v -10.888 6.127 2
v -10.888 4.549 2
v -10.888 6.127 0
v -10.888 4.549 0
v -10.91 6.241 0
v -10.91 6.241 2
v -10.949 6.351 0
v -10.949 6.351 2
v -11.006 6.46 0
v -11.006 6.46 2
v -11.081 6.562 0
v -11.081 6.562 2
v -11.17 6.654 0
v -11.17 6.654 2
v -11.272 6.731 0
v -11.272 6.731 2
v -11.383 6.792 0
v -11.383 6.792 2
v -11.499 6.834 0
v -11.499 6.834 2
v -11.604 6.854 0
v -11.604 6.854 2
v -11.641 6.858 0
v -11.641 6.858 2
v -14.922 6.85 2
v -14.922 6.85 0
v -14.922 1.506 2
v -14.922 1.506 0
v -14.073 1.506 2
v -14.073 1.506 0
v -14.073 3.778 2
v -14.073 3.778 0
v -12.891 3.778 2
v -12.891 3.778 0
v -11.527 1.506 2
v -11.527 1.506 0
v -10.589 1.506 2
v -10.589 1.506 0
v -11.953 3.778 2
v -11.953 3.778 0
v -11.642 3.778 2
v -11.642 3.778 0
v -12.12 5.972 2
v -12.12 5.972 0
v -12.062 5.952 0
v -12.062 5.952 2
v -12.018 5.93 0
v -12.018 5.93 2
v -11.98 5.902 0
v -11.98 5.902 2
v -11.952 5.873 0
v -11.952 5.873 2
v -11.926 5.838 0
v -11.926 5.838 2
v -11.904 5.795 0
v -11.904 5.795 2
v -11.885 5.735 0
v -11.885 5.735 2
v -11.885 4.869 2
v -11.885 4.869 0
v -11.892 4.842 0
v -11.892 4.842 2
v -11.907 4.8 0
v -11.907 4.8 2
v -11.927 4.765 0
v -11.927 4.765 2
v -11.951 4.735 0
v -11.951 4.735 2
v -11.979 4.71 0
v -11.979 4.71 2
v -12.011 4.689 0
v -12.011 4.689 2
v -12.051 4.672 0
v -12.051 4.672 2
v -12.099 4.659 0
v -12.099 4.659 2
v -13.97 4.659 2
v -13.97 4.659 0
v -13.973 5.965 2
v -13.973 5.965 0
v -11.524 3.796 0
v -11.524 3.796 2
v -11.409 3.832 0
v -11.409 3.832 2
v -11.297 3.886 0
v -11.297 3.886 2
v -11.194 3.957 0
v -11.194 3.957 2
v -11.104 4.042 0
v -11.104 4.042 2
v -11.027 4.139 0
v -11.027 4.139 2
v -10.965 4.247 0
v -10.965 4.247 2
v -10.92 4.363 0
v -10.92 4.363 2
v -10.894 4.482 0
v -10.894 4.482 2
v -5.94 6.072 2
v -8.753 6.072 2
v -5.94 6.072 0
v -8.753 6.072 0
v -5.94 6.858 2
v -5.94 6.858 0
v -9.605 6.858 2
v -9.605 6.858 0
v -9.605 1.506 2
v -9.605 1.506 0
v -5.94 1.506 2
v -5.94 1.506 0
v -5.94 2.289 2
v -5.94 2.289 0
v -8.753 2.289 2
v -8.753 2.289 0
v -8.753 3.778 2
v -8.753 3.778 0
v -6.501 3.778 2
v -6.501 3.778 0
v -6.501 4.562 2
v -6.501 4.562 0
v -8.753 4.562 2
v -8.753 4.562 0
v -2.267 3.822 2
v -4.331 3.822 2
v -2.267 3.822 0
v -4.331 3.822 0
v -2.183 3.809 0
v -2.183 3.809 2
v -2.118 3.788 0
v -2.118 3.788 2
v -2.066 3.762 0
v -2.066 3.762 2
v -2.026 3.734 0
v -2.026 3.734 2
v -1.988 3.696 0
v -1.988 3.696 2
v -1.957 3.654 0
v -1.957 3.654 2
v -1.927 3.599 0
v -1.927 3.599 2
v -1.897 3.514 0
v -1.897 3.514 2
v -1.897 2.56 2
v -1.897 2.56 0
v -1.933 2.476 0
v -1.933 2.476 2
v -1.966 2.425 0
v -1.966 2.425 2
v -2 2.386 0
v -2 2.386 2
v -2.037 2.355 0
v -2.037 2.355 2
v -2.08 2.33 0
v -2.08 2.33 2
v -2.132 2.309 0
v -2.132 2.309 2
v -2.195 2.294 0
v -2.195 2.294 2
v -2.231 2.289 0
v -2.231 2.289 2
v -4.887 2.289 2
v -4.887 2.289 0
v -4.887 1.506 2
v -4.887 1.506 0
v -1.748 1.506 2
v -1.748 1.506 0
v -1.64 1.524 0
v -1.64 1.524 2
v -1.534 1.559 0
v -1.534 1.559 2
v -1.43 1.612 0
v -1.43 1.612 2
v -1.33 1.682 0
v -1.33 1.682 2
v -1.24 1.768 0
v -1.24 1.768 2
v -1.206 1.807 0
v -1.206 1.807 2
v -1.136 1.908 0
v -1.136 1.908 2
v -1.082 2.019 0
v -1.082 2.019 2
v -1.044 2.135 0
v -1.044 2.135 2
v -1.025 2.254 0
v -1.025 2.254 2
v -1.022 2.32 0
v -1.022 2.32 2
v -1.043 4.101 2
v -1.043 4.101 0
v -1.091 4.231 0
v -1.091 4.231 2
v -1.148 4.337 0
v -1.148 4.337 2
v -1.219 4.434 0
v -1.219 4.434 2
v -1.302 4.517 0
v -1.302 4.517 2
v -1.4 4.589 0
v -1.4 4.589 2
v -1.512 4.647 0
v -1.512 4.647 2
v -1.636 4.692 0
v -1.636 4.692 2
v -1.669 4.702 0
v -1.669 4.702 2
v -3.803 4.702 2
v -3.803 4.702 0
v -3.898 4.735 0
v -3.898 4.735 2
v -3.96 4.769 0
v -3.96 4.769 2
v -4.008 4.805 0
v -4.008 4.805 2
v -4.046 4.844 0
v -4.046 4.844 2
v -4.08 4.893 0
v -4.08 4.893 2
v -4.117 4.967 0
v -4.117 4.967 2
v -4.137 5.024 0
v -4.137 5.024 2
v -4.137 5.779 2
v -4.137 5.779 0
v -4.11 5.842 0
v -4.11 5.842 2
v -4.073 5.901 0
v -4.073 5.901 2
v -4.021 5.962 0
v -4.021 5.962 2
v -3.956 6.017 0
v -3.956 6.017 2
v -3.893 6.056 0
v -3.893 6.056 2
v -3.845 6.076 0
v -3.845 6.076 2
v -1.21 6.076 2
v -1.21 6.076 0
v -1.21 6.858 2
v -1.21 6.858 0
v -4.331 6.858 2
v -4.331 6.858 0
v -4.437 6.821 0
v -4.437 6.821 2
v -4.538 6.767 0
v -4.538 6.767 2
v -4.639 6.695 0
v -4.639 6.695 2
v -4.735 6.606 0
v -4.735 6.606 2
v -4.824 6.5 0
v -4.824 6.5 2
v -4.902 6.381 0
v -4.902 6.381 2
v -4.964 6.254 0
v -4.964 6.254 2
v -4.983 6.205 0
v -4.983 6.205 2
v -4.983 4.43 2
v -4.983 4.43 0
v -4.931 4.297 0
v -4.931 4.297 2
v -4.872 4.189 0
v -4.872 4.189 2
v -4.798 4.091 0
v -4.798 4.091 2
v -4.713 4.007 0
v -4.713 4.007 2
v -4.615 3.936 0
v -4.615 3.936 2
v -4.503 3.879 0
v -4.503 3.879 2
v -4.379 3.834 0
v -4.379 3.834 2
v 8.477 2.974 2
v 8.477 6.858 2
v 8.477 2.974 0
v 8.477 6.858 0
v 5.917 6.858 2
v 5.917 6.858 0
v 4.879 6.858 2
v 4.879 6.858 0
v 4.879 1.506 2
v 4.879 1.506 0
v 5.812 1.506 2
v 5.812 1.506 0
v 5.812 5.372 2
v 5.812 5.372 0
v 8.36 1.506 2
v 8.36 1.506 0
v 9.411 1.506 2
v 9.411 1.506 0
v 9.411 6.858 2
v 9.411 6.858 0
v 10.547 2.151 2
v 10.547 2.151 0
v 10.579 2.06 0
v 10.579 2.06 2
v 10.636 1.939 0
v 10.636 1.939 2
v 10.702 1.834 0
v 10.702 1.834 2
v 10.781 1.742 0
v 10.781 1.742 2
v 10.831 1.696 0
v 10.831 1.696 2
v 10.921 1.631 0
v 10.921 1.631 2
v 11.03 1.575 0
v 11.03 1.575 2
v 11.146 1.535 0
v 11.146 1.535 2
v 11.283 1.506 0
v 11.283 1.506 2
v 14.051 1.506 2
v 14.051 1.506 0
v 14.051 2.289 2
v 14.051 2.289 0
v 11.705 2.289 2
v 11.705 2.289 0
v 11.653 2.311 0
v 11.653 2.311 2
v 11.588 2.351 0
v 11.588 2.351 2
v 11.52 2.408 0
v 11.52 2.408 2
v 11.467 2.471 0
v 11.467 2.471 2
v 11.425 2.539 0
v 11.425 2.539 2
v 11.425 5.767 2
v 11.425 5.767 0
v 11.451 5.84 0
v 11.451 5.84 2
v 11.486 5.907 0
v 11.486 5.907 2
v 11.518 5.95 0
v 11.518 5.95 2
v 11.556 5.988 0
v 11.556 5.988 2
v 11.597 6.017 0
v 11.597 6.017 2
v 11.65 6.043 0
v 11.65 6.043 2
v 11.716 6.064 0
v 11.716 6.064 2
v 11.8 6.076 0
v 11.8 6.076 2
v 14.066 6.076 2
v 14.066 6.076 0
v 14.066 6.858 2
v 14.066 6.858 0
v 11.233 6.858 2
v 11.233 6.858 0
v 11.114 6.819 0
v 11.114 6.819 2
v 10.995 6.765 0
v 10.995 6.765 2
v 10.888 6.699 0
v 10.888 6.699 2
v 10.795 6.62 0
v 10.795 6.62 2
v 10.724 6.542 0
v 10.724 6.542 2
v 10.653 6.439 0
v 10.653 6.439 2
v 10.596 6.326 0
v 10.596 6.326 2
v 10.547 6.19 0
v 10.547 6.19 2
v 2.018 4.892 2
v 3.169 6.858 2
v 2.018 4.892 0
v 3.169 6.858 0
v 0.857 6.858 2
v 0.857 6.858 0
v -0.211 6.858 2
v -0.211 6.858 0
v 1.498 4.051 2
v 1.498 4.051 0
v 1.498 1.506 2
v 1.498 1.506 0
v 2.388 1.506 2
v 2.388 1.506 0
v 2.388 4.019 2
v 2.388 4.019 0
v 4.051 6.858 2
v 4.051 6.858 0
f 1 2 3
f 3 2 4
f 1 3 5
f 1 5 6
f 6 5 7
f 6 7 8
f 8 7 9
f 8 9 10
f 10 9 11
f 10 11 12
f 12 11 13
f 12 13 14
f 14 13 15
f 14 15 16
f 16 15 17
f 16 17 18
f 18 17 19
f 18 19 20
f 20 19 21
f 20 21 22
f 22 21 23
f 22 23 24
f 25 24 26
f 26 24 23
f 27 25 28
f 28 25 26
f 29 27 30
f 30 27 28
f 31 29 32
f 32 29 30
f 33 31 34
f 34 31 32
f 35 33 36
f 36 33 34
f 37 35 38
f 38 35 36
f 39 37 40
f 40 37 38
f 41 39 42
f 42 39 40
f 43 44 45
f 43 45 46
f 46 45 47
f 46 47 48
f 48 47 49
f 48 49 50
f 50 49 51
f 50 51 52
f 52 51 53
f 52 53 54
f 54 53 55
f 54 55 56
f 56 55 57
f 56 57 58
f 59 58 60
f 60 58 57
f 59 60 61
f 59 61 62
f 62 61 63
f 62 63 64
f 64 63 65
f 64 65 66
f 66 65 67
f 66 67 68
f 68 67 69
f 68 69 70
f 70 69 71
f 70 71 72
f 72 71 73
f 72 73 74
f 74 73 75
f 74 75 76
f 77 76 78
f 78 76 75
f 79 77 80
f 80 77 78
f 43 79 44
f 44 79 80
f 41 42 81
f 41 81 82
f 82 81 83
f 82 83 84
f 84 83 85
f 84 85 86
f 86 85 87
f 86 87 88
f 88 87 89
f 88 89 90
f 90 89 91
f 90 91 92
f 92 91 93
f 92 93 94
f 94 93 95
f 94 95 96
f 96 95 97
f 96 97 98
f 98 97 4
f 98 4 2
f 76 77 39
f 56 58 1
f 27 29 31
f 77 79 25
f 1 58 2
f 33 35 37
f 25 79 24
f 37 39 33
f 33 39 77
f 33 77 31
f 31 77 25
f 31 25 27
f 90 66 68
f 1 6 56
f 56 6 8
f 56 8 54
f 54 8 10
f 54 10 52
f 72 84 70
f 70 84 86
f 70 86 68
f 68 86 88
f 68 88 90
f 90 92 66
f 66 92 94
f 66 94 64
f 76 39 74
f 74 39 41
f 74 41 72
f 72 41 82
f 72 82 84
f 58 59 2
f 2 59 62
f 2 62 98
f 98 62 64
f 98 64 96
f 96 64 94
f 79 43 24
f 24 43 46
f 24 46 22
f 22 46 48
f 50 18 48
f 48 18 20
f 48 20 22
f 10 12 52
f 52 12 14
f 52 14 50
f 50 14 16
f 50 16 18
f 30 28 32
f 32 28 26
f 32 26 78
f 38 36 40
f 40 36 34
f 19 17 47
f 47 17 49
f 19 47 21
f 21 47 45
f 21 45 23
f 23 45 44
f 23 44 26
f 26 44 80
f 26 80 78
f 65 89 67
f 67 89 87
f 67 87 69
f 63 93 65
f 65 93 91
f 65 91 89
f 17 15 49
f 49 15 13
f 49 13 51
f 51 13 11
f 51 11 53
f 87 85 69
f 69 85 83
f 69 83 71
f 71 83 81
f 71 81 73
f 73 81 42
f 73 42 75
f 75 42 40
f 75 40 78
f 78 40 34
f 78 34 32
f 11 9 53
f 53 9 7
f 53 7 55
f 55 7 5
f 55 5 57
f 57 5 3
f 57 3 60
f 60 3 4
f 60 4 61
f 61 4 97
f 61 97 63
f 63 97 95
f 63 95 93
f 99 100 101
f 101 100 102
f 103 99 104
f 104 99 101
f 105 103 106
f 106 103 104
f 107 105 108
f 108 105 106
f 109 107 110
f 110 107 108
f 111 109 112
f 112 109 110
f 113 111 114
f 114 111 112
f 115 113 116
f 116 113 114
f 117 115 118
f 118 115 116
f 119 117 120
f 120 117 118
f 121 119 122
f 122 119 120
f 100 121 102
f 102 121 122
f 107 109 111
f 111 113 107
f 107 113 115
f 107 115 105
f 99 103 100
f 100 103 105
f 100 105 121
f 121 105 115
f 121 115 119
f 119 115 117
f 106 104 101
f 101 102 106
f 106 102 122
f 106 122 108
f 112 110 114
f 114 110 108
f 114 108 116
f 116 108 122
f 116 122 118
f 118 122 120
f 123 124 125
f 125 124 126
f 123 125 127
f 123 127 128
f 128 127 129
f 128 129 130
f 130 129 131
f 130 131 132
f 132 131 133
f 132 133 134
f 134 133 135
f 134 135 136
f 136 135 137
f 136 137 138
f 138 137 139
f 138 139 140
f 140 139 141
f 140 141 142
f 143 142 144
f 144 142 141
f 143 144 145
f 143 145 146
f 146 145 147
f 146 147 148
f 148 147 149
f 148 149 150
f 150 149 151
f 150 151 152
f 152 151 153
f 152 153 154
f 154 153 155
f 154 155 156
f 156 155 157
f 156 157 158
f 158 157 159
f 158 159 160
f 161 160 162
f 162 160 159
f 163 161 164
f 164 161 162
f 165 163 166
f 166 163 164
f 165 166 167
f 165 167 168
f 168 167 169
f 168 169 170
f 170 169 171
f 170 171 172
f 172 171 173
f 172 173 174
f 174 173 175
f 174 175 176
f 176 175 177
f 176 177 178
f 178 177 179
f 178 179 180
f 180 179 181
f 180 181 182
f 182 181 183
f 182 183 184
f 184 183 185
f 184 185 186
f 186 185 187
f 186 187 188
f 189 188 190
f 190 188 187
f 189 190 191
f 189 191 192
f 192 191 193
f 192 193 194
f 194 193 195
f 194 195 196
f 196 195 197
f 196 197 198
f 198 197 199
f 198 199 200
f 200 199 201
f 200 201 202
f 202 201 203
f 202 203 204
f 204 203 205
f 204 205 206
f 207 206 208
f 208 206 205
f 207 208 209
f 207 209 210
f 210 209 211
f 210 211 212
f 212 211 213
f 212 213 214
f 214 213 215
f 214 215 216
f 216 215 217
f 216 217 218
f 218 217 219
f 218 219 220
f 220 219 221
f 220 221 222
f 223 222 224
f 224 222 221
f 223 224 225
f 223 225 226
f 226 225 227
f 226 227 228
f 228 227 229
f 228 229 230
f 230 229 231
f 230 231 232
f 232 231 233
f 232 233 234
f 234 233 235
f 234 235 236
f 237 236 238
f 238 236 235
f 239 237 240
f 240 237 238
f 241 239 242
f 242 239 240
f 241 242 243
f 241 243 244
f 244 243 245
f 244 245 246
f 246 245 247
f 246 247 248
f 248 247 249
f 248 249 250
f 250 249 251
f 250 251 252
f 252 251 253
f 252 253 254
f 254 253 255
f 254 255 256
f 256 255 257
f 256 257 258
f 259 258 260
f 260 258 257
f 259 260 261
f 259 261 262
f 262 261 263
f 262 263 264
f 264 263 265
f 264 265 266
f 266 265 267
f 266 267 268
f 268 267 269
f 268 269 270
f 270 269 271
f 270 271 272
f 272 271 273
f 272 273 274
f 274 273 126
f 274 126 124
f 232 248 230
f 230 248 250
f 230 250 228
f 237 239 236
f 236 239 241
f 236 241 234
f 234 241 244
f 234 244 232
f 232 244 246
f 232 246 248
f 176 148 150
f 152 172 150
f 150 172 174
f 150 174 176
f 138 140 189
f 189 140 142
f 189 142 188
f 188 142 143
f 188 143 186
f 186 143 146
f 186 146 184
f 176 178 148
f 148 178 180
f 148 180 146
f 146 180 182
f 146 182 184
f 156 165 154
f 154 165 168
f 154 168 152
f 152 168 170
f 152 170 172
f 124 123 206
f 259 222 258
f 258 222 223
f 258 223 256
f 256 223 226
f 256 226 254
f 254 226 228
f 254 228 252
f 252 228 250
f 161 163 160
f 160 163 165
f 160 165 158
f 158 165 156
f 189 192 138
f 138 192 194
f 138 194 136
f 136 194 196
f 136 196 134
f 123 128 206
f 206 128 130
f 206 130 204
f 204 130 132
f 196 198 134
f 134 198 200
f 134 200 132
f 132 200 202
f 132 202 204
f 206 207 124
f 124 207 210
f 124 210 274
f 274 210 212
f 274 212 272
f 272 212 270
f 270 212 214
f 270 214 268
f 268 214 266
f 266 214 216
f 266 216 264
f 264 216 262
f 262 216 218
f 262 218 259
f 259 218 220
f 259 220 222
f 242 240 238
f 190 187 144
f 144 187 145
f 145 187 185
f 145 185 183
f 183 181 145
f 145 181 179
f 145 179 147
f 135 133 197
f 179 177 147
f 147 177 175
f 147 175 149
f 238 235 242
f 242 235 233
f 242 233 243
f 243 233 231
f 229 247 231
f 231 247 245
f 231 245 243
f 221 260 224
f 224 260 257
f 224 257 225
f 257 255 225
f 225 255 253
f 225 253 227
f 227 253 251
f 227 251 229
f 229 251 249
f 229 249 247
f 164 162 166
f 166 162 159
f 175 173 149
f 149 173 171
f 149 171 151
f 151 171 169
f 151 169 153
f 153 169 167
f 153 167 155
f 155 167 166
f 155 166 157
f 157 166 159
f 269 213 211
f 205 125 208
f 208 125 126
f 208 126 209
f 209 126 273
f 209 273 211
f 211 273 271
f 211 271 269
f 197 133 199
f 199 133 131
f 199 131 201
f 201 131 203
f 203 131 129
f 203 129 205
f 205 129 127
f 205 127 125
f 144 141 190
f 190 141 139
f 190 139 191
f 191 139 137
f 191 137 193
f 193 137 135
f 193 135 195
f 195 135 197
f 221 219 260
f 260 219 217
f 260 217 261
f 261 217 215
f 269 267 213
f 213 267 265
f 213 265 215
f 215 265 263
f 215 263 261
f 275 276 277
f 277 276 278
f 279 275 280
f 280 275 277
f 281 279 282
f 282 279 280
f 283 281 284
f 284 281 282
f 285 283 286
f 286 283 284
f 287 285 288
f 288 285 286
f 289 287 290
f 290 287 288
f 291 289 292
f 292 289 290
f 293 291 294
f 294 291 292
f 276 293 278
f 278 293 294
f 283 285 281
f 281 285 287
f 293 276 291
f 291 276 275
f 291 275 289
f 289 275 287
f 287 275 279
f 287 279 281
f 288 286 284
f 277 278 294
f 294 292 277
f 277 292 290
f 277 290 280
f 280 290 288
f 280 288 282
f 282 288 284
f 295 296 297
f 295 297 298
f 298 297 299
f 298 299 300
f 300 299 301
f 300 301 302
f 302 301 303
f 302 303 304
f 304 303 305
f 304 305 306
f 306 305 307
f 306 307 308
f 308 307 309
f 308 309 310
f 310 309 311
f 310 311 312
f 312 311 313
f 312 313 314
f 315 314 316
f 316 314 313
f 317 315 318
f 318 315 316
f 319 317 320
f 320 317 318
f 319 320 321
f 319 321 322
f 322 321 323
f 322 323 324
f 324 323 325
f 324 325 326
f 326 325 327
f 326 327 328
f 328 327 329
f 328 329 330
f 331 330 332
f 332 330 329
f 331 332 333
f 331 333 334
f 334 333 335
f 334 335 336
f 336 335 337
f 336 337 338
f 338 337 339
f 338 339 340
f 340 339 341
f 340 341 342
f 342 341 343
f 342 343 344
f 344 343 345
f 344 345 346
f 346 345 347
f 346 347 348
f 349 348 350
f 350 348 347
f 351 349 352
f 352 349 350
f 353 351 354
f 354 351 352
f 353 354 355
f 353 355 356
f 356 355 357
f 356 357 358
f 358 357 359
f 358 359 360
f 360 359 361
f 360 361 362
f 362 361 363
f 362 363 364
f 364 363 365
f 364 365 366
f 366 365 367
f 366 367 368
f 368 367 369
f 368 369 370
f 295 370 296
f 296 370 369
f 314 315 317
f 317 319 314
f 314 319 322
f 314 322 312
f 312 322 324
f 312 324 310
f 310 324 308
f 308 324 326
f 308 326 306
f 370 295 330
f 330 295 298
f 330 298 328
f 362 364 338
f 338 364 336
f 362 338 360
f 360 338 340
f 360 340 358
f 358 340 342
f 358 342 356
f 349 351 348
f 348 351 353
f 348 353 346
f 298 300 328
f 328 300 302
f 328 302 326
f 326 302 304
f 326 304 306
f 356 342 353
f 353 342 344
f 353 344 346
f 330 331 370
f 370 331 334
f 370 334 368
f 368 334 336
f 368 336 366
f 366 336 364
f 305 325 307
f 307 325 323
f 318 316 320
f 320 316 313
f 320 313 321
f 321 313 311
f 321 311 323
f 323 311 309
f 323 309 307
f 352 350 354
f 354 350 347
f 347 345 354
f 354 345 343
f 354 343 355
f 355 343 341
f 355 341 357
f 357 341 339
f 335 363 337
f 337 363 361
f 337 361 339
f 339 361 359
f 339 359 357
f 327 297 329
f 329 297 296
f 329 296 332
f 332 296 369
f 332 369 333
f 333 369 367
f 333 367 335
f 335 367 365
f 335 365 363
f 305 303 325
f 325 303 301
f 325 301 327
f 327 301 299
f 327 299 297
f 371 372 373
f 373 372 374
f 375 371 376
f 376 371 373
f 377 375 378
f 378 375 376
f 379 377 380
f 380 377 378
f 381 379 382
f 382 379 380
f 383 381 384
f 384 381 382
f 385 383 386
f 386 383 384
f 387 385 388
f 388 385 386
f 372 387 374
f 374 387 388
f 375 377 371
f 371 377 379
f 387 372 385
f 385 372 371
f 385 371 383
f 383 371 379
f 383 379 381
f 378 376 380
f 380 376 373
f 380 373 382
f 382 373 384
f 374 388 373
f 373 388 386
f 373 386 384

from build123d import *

# Parameters (mm, degrees)
BOSS_EXTRUDE8_DEPTH   = 2
BOSS_EXTRUDE8_2_DEPTH = 2
BOSS_EXTRUDE8_3_DEPTH = 2
BOSS_EXTRUDE8_4_DEPTH = 2
BOSS_EXTRUDE8_5_DEPTH = 2
BOSS_EXTRUDE8_6_DEPTH = 2


with BuildPart() as part:
    # Sketch39 → Boss-Extrude8 (new body)
    with BuildSketch(Plane.XY):
        with BuildLine():
            Line((-10.888283658, 4.549273437), (-10.888283658, 6.126987026))
            add(Edge.make_bspline(
                [(-10.888283658, 6.126987026), (-10.908232756, 6.311540114), (-11.094852516, 6.669600397), (-11.456841906, 6.846838223), (-11.641186102, 6.857619555)],
                knots=[0.004357591, 0.004357591, 0.004357591, 0.004357591, 0.500967638, 0.997577686, 0.997577686, 0.997577686, 0.997577686], degree=3))
            Line((-11.641186102, 6.857619555), (-14.922474371, 6.850388867))
            Line((-14.922474371, 6.850388867), (-14.922474371, 1.505742473))
            Line((-14.922474371, 1.505742473), (-14.072776349, 1.505742473))
            Line((-14.072776349, 1.505742473), (-14.072776349, 3.777872176))
            Line((-14.072776349, 3.777872176), (-12.891259134, 3.777872176))
            Line((-12.891259134, 3.777872176), (-11.52653581, 1.505742473))
            Line((-11.52653581, 1.505742473), (-10.588770825, 1.505742473))
            Line((-10.588770825, 1.505742473), (-11.953494149, 3.777872176))
            Line((-11.953494149, 3.777872176), (-11.642084885, 3.777872176))
            add(Edge.make_bspline(
                [(-11.642084885, 3.777872176), (-11.451993433, 3.792046974), (-11.074843016, 3.966339896), (-10.894872856, 4.35631666), (-10.888283658, 4.549273437)],
                knots=[0.002906528, 0.002906528, 0.002906528, 0.002906528, 0.500827012, 0.998747497, 0.998747497, 0.998747497, 0.998747497], degree=3))
        make_face()
        with BuildLine():
            add(Edge.make_bspline(
                [(-11.884951007, 5.735076037), (-11.928592054, 5.922883289), (-12.120490935, 5.97197097)],
                knots=[0, 0, 0, 1, 1, 1], degree=2))
            Line((-12.120490935, 5.97197097), (-13.972776349, 5.964685241))
            Line((-13.972776349, 5.964685241), (-13.969898423, 4.658681327))
            Line((-13.969898423, 4.658681327), (-12.098915788, 4.658681327))
            add(Edge.make_bspline(
                [(-12.098915788, 4.658681327), (-11.921884887, 4.693884027), (-11.884951007, 4.869171619)],
                knots=[0, 0, 0, 1, 1, 1], degree=2))
            Line((-11.884951007, 4.869171619), (-11.884951007, 5.735076037))
        make_face(mode=Mode.SUBTRACT)
    extrude(amount=BOSS_EXTRUDE8_DEPTH)


with BuildPart() as body_2:
    # Sketch39 → Boss-Extrude8 2 (new body)
    with BuildSketch(Plane.XY):
        Polygon((-8.752624131, 6.07197097), (-5.94007284, 6.07197097), (-5.94007284, 6.857625765), (-9.60478091, 6.857625765), (-9.60478091, 1.505742473), (-5.94007284, 1.505742473), (-5.94007284, 2.289085691), (-8.752624131, 2.289085691), (-8.752624131, 3.777872176), (-6.500945529, 3.777872176), (-6.500945529, 4.562436919), (-8.752624131, 4.562436919), align=None)
    extrude(amount=BOSS_EXTRUDE8_2_DEPTH)


with BuildPart() as body_3:
    # Sketch39 → Boss-Extrude8 3 (new body)
    with BuildSketch(Plane.XY):
        with BuildLine():
            Line((-4.331445745, 3.821709693), (-2.267474021, 3.821709693))
            add(Edge.make_bspline(
                [(-2.267474021, 3.821709693), (-2.18188065, 3.81593612), (-2.001029862, 3.760941511), (-1.918852857, 3.596190197), (-1.897178545, 3.514314513)],
                knots=[-0.007665862, -0.007665862, -0.007665862, -0.007665862, 0.511460783, 1.030587427, 1.030587427, 1.030587427, 1.030587427], degree=3))
            Line((-1.897178545, 3.514314513), (-1.897178545, 2.559561474))
            add(Edge.make_bspline(
                [(-1.897178545, 2.559561474), (-1.920997625, 2.488393268), (-1.997915919, 2.347168794), (-2.155599312, 2.295866478), (-2.231249257, 2.289085691)],
                knots=[-0.045302285, -0.045302285, -0.045302285, -0.045302285, 0.483485723, 1.01227373, 1.01227373, 1.01227373, 1.01227373], degree=3))
            Line((-2.231249257, 2.289085691), (-4.88659772, 2.289085691))
            Line((-4.88659772, 2.289085691), (-4.88659772, 1.505742473))
            Line((-4.88659772, 1.505742473), (-1.747765617, 1.505742473))
            add(Edge.make_bspline(
                [(-1.747765617, 1.505742473), (-1.554039499, 1.522473909), (-1.176105355, 1.730633067), (-1.019975744, 2.125993011), (-1.022239558, 2.319749566)],
                knots=[0.003205409, 0.003205409, 0.003205409, 0.003205409, 0.501602705, 1, 1, 1, 1], degree=3))
            Line((-1.022239558, 2.319749566), (-1.043051423, 4.10100641))
            add(Edge.make_bspline(
                [(-1.043051423, 4.10100641), (-1.065619796, 4.176263738), (-1.129917251, 4.327916486), (-1.262718984, 4.49362296), (-1.434645881, 4.620744007), (-1.591738794, 4.681150616), (-1.669091916, 4.701815782)],
                knots=[0.012743608, 0.012743608, 0.012743608, 0.012743608, 0.256640139, 0.500536671, 0.744433202, 0.988329734, 0.988329734, 0.988329734, 0.988329734], degree=3))
            Line((-1.669091916, 4.701815782), (-3.80345691, 4.701815782))
            add(Edge.make_bspline(
                [(-3.80345691, 4.701815782), (-3.881648249, 4.721973704), (-4.038081478, 4.794101762), (-4.114162603, 4.947083549), (-4.136596871, 5.024268339)],
                knots=[-0.032088246, -0.032088246, -0.032088246, -0.032088246, 0.502199739, 1.036487723, 1.036487723, 1.036487723, 1.036487723], degree=3))
            Line((-4.136596871, 5.024268339), (-4.136596871, 5.779216833))
            add(Edge.make_bspline(
                [(-4.136596871, 5.779216833), (-4.09320159, 5.910957545), (-3.975516536, 6.029193296), (-3.844958381, 6.076026335)],
                knots=[-0.048739002, -0.048739002, -0.048739002, -0.048739002, 1.051963254, 1.051963254, 1.051963254, 1.051963254], degree=3))
            Line((-3.844958381, 6.076026335), (-1.209628903, 6.076026335))
            Line((-1.209628903, 6.076026335), (-1.209628903, 6.857625765))
            Line((-1.209628903, 6.857625765), (-4.33068222, 6.857625765))
            add(Edge.make_bspline(
                [(-4.33068222, 6.857625765), (-4.628207422, 6.779563045), (-4.88190688, 6.495297474), (-4.98278942, 6.204715734)],
                knots=[0.011688933, 0.011688933, 0.011688933, 0.011688933, 0.984045744, 0.984045744, 0.984045744, 0.984045744], degree=3))
            Line((-4.98278942, 6.204715734), (-4.98278942, 4.429589182))
            add(Edge.make_bspline(
                [(-4.98278942, 4.429589182), (-4.957928137, 4.351858109), (-4.888451922, 4.195176517), (-4.749030804, 4.026321893), (-4.57111561, 3.899076851), (-4.410501277, 3.840956124), (-4.331445745, 3.821709693)],
                knots=[0.013618493, 0.013618493, 0.013618493, 0.013618493, 0.257585504, 0.501552515, 0.745519526, 0.989486537, 0.989486537, 0.989486537, 0.989486537], degree=3))
        make_face()
    extrude(amount=BOSS_EXTRUDE8_3_DEPTH)


with BuildPart() as body_4:
    # Sketch39 → Boss-Extrude8 4 (new body)
    with BuildSketch(Plane.XY):
        Polygon((8.476971429, 6.857625765), (8.476971429, 2.97350344), (5.917175659, 6.857625765), (4.878705551, 6.857625765), (4.878705551, 1.505742473), (5.812405759, 1.505742473), (5.812405759, 5.371966432), (8.360405772, 1.505742473), (9.410671637, 1.505742473), (9.410671637, 6.857625765), align=None)
    extrude(amount=BOSS_EXTRUDE8_4_DEPTH)


with BuildPart() as body_5:
    # Sketch39 → Boss-Extrude8 5 (new body)
    with BuildSketch(Plane.XY):
        with BuildLine():
            add(Edge.make_bspline(
                [(11.282902439, 1.505742473), (11.19415179, 1.518984982), (11.011088341, 1.568898827), (10.811389164, 1.698145446), (10.65406452, 1.880985323), (10.574750759, 2.06184818), (10.547050594, 2.150621319)],
                knots=[0.005888611, 0.005888611, 0.005888611, 0.005888611, 0.251501652, 0.497114693, 0.742727735, 0.988340776, 0.988340776, 0.988340776, 0.988340776], degree=3))
            Line((10.547050594, 2.150621319), (10.547050594, 6.190146216))
            add(Edge.make_bspline(
                [(10.547050594, 6.190146216), (10.571669638, 6.27393603), (10.642083437, 6.443109543), (10.787921904, 6.627705307), (10.976703119, 6.768698533), (11.148490286, 6.83502177), (11.233236627, 6.857625765)],
                knots=[0.011813784, 0.011813784, 0.011813784, 0.011813784, 0.25618025, 0.500546716, 0.744913182, 0.989279648, 0.989279648, 0.989279648, 0.989279648], degree=3))
            Line((11.233236627, 6.857625765), (14.065921312, 6.857625765))
            Line((14.065921312, 6.857625765), (14.065921312, 6.076026335))
            Line((14.065921312, 6.076026335), (11.799717704, 6.076026335))
            add(Edge.make_bspline(
                [(11.799717704, 6.076026335), (11.713521041, 6.070666208), (11.531507403, 6.015572919), (11.447768348, 5.849791271), (11.425043158, 5.767354498)],
                knots=[-0.007036339, -0.007036339, -0.007036339, -0.007036339, 0.512122438, 1.031281215, 1.031281215, 1.031281215, 1.031281215], degree=3))
            Line((11.425043158, 5.767354498), (11.425043158, 2.53928051))
            add(Edge.make_bspline(
                [(11.425043158, 2.53928051), (11.481020414, 2.427440582), (11.586582072, 2.330350466), (11.704644941, 2.289085691)],
                knots=[-0.082922559, -0.082922559, -0.082922559, -0.082922559, 1.060320703, 1.060320703, 1.060320703, 1.060320703], degree=3))
            Line((11.704644941, 2.289085691), (14.051295186, 2.289085691))
            Line((14.051295186, 2.289085691), (14.051295186, 1.505742473))
            Line((14.051295186, 1.505742473), (11.282902439, 1.505742473))
        make_face()
    extrude(amount=BOSS_EXTRUDE8_5_DEPTH)


with BuildPart() as body_6:
    # Sketch39 → Boss-Extrude8 6 (new body)
    with BuildSketch(Plane.XY):
        Polygon((2.017682999, 4.891885001), (0.857379848, 6.857625765), (-0.211164194, 6.857625765), (1.498107647, 4.050537974), (1.498107647, 1.505742473), (2.388128238, 1.505742473), (2.388128238, 4.019029191), (4.05062916, 6.857625765), (3.16897229, 6.857625765), align=None)
    extrude(amount=BOSS_EXTRUDE8_6_DEPTH)


solid = Compound([part.part, body_2.part, body_3.part, body_4.part, body_5.part, body_6.part])
